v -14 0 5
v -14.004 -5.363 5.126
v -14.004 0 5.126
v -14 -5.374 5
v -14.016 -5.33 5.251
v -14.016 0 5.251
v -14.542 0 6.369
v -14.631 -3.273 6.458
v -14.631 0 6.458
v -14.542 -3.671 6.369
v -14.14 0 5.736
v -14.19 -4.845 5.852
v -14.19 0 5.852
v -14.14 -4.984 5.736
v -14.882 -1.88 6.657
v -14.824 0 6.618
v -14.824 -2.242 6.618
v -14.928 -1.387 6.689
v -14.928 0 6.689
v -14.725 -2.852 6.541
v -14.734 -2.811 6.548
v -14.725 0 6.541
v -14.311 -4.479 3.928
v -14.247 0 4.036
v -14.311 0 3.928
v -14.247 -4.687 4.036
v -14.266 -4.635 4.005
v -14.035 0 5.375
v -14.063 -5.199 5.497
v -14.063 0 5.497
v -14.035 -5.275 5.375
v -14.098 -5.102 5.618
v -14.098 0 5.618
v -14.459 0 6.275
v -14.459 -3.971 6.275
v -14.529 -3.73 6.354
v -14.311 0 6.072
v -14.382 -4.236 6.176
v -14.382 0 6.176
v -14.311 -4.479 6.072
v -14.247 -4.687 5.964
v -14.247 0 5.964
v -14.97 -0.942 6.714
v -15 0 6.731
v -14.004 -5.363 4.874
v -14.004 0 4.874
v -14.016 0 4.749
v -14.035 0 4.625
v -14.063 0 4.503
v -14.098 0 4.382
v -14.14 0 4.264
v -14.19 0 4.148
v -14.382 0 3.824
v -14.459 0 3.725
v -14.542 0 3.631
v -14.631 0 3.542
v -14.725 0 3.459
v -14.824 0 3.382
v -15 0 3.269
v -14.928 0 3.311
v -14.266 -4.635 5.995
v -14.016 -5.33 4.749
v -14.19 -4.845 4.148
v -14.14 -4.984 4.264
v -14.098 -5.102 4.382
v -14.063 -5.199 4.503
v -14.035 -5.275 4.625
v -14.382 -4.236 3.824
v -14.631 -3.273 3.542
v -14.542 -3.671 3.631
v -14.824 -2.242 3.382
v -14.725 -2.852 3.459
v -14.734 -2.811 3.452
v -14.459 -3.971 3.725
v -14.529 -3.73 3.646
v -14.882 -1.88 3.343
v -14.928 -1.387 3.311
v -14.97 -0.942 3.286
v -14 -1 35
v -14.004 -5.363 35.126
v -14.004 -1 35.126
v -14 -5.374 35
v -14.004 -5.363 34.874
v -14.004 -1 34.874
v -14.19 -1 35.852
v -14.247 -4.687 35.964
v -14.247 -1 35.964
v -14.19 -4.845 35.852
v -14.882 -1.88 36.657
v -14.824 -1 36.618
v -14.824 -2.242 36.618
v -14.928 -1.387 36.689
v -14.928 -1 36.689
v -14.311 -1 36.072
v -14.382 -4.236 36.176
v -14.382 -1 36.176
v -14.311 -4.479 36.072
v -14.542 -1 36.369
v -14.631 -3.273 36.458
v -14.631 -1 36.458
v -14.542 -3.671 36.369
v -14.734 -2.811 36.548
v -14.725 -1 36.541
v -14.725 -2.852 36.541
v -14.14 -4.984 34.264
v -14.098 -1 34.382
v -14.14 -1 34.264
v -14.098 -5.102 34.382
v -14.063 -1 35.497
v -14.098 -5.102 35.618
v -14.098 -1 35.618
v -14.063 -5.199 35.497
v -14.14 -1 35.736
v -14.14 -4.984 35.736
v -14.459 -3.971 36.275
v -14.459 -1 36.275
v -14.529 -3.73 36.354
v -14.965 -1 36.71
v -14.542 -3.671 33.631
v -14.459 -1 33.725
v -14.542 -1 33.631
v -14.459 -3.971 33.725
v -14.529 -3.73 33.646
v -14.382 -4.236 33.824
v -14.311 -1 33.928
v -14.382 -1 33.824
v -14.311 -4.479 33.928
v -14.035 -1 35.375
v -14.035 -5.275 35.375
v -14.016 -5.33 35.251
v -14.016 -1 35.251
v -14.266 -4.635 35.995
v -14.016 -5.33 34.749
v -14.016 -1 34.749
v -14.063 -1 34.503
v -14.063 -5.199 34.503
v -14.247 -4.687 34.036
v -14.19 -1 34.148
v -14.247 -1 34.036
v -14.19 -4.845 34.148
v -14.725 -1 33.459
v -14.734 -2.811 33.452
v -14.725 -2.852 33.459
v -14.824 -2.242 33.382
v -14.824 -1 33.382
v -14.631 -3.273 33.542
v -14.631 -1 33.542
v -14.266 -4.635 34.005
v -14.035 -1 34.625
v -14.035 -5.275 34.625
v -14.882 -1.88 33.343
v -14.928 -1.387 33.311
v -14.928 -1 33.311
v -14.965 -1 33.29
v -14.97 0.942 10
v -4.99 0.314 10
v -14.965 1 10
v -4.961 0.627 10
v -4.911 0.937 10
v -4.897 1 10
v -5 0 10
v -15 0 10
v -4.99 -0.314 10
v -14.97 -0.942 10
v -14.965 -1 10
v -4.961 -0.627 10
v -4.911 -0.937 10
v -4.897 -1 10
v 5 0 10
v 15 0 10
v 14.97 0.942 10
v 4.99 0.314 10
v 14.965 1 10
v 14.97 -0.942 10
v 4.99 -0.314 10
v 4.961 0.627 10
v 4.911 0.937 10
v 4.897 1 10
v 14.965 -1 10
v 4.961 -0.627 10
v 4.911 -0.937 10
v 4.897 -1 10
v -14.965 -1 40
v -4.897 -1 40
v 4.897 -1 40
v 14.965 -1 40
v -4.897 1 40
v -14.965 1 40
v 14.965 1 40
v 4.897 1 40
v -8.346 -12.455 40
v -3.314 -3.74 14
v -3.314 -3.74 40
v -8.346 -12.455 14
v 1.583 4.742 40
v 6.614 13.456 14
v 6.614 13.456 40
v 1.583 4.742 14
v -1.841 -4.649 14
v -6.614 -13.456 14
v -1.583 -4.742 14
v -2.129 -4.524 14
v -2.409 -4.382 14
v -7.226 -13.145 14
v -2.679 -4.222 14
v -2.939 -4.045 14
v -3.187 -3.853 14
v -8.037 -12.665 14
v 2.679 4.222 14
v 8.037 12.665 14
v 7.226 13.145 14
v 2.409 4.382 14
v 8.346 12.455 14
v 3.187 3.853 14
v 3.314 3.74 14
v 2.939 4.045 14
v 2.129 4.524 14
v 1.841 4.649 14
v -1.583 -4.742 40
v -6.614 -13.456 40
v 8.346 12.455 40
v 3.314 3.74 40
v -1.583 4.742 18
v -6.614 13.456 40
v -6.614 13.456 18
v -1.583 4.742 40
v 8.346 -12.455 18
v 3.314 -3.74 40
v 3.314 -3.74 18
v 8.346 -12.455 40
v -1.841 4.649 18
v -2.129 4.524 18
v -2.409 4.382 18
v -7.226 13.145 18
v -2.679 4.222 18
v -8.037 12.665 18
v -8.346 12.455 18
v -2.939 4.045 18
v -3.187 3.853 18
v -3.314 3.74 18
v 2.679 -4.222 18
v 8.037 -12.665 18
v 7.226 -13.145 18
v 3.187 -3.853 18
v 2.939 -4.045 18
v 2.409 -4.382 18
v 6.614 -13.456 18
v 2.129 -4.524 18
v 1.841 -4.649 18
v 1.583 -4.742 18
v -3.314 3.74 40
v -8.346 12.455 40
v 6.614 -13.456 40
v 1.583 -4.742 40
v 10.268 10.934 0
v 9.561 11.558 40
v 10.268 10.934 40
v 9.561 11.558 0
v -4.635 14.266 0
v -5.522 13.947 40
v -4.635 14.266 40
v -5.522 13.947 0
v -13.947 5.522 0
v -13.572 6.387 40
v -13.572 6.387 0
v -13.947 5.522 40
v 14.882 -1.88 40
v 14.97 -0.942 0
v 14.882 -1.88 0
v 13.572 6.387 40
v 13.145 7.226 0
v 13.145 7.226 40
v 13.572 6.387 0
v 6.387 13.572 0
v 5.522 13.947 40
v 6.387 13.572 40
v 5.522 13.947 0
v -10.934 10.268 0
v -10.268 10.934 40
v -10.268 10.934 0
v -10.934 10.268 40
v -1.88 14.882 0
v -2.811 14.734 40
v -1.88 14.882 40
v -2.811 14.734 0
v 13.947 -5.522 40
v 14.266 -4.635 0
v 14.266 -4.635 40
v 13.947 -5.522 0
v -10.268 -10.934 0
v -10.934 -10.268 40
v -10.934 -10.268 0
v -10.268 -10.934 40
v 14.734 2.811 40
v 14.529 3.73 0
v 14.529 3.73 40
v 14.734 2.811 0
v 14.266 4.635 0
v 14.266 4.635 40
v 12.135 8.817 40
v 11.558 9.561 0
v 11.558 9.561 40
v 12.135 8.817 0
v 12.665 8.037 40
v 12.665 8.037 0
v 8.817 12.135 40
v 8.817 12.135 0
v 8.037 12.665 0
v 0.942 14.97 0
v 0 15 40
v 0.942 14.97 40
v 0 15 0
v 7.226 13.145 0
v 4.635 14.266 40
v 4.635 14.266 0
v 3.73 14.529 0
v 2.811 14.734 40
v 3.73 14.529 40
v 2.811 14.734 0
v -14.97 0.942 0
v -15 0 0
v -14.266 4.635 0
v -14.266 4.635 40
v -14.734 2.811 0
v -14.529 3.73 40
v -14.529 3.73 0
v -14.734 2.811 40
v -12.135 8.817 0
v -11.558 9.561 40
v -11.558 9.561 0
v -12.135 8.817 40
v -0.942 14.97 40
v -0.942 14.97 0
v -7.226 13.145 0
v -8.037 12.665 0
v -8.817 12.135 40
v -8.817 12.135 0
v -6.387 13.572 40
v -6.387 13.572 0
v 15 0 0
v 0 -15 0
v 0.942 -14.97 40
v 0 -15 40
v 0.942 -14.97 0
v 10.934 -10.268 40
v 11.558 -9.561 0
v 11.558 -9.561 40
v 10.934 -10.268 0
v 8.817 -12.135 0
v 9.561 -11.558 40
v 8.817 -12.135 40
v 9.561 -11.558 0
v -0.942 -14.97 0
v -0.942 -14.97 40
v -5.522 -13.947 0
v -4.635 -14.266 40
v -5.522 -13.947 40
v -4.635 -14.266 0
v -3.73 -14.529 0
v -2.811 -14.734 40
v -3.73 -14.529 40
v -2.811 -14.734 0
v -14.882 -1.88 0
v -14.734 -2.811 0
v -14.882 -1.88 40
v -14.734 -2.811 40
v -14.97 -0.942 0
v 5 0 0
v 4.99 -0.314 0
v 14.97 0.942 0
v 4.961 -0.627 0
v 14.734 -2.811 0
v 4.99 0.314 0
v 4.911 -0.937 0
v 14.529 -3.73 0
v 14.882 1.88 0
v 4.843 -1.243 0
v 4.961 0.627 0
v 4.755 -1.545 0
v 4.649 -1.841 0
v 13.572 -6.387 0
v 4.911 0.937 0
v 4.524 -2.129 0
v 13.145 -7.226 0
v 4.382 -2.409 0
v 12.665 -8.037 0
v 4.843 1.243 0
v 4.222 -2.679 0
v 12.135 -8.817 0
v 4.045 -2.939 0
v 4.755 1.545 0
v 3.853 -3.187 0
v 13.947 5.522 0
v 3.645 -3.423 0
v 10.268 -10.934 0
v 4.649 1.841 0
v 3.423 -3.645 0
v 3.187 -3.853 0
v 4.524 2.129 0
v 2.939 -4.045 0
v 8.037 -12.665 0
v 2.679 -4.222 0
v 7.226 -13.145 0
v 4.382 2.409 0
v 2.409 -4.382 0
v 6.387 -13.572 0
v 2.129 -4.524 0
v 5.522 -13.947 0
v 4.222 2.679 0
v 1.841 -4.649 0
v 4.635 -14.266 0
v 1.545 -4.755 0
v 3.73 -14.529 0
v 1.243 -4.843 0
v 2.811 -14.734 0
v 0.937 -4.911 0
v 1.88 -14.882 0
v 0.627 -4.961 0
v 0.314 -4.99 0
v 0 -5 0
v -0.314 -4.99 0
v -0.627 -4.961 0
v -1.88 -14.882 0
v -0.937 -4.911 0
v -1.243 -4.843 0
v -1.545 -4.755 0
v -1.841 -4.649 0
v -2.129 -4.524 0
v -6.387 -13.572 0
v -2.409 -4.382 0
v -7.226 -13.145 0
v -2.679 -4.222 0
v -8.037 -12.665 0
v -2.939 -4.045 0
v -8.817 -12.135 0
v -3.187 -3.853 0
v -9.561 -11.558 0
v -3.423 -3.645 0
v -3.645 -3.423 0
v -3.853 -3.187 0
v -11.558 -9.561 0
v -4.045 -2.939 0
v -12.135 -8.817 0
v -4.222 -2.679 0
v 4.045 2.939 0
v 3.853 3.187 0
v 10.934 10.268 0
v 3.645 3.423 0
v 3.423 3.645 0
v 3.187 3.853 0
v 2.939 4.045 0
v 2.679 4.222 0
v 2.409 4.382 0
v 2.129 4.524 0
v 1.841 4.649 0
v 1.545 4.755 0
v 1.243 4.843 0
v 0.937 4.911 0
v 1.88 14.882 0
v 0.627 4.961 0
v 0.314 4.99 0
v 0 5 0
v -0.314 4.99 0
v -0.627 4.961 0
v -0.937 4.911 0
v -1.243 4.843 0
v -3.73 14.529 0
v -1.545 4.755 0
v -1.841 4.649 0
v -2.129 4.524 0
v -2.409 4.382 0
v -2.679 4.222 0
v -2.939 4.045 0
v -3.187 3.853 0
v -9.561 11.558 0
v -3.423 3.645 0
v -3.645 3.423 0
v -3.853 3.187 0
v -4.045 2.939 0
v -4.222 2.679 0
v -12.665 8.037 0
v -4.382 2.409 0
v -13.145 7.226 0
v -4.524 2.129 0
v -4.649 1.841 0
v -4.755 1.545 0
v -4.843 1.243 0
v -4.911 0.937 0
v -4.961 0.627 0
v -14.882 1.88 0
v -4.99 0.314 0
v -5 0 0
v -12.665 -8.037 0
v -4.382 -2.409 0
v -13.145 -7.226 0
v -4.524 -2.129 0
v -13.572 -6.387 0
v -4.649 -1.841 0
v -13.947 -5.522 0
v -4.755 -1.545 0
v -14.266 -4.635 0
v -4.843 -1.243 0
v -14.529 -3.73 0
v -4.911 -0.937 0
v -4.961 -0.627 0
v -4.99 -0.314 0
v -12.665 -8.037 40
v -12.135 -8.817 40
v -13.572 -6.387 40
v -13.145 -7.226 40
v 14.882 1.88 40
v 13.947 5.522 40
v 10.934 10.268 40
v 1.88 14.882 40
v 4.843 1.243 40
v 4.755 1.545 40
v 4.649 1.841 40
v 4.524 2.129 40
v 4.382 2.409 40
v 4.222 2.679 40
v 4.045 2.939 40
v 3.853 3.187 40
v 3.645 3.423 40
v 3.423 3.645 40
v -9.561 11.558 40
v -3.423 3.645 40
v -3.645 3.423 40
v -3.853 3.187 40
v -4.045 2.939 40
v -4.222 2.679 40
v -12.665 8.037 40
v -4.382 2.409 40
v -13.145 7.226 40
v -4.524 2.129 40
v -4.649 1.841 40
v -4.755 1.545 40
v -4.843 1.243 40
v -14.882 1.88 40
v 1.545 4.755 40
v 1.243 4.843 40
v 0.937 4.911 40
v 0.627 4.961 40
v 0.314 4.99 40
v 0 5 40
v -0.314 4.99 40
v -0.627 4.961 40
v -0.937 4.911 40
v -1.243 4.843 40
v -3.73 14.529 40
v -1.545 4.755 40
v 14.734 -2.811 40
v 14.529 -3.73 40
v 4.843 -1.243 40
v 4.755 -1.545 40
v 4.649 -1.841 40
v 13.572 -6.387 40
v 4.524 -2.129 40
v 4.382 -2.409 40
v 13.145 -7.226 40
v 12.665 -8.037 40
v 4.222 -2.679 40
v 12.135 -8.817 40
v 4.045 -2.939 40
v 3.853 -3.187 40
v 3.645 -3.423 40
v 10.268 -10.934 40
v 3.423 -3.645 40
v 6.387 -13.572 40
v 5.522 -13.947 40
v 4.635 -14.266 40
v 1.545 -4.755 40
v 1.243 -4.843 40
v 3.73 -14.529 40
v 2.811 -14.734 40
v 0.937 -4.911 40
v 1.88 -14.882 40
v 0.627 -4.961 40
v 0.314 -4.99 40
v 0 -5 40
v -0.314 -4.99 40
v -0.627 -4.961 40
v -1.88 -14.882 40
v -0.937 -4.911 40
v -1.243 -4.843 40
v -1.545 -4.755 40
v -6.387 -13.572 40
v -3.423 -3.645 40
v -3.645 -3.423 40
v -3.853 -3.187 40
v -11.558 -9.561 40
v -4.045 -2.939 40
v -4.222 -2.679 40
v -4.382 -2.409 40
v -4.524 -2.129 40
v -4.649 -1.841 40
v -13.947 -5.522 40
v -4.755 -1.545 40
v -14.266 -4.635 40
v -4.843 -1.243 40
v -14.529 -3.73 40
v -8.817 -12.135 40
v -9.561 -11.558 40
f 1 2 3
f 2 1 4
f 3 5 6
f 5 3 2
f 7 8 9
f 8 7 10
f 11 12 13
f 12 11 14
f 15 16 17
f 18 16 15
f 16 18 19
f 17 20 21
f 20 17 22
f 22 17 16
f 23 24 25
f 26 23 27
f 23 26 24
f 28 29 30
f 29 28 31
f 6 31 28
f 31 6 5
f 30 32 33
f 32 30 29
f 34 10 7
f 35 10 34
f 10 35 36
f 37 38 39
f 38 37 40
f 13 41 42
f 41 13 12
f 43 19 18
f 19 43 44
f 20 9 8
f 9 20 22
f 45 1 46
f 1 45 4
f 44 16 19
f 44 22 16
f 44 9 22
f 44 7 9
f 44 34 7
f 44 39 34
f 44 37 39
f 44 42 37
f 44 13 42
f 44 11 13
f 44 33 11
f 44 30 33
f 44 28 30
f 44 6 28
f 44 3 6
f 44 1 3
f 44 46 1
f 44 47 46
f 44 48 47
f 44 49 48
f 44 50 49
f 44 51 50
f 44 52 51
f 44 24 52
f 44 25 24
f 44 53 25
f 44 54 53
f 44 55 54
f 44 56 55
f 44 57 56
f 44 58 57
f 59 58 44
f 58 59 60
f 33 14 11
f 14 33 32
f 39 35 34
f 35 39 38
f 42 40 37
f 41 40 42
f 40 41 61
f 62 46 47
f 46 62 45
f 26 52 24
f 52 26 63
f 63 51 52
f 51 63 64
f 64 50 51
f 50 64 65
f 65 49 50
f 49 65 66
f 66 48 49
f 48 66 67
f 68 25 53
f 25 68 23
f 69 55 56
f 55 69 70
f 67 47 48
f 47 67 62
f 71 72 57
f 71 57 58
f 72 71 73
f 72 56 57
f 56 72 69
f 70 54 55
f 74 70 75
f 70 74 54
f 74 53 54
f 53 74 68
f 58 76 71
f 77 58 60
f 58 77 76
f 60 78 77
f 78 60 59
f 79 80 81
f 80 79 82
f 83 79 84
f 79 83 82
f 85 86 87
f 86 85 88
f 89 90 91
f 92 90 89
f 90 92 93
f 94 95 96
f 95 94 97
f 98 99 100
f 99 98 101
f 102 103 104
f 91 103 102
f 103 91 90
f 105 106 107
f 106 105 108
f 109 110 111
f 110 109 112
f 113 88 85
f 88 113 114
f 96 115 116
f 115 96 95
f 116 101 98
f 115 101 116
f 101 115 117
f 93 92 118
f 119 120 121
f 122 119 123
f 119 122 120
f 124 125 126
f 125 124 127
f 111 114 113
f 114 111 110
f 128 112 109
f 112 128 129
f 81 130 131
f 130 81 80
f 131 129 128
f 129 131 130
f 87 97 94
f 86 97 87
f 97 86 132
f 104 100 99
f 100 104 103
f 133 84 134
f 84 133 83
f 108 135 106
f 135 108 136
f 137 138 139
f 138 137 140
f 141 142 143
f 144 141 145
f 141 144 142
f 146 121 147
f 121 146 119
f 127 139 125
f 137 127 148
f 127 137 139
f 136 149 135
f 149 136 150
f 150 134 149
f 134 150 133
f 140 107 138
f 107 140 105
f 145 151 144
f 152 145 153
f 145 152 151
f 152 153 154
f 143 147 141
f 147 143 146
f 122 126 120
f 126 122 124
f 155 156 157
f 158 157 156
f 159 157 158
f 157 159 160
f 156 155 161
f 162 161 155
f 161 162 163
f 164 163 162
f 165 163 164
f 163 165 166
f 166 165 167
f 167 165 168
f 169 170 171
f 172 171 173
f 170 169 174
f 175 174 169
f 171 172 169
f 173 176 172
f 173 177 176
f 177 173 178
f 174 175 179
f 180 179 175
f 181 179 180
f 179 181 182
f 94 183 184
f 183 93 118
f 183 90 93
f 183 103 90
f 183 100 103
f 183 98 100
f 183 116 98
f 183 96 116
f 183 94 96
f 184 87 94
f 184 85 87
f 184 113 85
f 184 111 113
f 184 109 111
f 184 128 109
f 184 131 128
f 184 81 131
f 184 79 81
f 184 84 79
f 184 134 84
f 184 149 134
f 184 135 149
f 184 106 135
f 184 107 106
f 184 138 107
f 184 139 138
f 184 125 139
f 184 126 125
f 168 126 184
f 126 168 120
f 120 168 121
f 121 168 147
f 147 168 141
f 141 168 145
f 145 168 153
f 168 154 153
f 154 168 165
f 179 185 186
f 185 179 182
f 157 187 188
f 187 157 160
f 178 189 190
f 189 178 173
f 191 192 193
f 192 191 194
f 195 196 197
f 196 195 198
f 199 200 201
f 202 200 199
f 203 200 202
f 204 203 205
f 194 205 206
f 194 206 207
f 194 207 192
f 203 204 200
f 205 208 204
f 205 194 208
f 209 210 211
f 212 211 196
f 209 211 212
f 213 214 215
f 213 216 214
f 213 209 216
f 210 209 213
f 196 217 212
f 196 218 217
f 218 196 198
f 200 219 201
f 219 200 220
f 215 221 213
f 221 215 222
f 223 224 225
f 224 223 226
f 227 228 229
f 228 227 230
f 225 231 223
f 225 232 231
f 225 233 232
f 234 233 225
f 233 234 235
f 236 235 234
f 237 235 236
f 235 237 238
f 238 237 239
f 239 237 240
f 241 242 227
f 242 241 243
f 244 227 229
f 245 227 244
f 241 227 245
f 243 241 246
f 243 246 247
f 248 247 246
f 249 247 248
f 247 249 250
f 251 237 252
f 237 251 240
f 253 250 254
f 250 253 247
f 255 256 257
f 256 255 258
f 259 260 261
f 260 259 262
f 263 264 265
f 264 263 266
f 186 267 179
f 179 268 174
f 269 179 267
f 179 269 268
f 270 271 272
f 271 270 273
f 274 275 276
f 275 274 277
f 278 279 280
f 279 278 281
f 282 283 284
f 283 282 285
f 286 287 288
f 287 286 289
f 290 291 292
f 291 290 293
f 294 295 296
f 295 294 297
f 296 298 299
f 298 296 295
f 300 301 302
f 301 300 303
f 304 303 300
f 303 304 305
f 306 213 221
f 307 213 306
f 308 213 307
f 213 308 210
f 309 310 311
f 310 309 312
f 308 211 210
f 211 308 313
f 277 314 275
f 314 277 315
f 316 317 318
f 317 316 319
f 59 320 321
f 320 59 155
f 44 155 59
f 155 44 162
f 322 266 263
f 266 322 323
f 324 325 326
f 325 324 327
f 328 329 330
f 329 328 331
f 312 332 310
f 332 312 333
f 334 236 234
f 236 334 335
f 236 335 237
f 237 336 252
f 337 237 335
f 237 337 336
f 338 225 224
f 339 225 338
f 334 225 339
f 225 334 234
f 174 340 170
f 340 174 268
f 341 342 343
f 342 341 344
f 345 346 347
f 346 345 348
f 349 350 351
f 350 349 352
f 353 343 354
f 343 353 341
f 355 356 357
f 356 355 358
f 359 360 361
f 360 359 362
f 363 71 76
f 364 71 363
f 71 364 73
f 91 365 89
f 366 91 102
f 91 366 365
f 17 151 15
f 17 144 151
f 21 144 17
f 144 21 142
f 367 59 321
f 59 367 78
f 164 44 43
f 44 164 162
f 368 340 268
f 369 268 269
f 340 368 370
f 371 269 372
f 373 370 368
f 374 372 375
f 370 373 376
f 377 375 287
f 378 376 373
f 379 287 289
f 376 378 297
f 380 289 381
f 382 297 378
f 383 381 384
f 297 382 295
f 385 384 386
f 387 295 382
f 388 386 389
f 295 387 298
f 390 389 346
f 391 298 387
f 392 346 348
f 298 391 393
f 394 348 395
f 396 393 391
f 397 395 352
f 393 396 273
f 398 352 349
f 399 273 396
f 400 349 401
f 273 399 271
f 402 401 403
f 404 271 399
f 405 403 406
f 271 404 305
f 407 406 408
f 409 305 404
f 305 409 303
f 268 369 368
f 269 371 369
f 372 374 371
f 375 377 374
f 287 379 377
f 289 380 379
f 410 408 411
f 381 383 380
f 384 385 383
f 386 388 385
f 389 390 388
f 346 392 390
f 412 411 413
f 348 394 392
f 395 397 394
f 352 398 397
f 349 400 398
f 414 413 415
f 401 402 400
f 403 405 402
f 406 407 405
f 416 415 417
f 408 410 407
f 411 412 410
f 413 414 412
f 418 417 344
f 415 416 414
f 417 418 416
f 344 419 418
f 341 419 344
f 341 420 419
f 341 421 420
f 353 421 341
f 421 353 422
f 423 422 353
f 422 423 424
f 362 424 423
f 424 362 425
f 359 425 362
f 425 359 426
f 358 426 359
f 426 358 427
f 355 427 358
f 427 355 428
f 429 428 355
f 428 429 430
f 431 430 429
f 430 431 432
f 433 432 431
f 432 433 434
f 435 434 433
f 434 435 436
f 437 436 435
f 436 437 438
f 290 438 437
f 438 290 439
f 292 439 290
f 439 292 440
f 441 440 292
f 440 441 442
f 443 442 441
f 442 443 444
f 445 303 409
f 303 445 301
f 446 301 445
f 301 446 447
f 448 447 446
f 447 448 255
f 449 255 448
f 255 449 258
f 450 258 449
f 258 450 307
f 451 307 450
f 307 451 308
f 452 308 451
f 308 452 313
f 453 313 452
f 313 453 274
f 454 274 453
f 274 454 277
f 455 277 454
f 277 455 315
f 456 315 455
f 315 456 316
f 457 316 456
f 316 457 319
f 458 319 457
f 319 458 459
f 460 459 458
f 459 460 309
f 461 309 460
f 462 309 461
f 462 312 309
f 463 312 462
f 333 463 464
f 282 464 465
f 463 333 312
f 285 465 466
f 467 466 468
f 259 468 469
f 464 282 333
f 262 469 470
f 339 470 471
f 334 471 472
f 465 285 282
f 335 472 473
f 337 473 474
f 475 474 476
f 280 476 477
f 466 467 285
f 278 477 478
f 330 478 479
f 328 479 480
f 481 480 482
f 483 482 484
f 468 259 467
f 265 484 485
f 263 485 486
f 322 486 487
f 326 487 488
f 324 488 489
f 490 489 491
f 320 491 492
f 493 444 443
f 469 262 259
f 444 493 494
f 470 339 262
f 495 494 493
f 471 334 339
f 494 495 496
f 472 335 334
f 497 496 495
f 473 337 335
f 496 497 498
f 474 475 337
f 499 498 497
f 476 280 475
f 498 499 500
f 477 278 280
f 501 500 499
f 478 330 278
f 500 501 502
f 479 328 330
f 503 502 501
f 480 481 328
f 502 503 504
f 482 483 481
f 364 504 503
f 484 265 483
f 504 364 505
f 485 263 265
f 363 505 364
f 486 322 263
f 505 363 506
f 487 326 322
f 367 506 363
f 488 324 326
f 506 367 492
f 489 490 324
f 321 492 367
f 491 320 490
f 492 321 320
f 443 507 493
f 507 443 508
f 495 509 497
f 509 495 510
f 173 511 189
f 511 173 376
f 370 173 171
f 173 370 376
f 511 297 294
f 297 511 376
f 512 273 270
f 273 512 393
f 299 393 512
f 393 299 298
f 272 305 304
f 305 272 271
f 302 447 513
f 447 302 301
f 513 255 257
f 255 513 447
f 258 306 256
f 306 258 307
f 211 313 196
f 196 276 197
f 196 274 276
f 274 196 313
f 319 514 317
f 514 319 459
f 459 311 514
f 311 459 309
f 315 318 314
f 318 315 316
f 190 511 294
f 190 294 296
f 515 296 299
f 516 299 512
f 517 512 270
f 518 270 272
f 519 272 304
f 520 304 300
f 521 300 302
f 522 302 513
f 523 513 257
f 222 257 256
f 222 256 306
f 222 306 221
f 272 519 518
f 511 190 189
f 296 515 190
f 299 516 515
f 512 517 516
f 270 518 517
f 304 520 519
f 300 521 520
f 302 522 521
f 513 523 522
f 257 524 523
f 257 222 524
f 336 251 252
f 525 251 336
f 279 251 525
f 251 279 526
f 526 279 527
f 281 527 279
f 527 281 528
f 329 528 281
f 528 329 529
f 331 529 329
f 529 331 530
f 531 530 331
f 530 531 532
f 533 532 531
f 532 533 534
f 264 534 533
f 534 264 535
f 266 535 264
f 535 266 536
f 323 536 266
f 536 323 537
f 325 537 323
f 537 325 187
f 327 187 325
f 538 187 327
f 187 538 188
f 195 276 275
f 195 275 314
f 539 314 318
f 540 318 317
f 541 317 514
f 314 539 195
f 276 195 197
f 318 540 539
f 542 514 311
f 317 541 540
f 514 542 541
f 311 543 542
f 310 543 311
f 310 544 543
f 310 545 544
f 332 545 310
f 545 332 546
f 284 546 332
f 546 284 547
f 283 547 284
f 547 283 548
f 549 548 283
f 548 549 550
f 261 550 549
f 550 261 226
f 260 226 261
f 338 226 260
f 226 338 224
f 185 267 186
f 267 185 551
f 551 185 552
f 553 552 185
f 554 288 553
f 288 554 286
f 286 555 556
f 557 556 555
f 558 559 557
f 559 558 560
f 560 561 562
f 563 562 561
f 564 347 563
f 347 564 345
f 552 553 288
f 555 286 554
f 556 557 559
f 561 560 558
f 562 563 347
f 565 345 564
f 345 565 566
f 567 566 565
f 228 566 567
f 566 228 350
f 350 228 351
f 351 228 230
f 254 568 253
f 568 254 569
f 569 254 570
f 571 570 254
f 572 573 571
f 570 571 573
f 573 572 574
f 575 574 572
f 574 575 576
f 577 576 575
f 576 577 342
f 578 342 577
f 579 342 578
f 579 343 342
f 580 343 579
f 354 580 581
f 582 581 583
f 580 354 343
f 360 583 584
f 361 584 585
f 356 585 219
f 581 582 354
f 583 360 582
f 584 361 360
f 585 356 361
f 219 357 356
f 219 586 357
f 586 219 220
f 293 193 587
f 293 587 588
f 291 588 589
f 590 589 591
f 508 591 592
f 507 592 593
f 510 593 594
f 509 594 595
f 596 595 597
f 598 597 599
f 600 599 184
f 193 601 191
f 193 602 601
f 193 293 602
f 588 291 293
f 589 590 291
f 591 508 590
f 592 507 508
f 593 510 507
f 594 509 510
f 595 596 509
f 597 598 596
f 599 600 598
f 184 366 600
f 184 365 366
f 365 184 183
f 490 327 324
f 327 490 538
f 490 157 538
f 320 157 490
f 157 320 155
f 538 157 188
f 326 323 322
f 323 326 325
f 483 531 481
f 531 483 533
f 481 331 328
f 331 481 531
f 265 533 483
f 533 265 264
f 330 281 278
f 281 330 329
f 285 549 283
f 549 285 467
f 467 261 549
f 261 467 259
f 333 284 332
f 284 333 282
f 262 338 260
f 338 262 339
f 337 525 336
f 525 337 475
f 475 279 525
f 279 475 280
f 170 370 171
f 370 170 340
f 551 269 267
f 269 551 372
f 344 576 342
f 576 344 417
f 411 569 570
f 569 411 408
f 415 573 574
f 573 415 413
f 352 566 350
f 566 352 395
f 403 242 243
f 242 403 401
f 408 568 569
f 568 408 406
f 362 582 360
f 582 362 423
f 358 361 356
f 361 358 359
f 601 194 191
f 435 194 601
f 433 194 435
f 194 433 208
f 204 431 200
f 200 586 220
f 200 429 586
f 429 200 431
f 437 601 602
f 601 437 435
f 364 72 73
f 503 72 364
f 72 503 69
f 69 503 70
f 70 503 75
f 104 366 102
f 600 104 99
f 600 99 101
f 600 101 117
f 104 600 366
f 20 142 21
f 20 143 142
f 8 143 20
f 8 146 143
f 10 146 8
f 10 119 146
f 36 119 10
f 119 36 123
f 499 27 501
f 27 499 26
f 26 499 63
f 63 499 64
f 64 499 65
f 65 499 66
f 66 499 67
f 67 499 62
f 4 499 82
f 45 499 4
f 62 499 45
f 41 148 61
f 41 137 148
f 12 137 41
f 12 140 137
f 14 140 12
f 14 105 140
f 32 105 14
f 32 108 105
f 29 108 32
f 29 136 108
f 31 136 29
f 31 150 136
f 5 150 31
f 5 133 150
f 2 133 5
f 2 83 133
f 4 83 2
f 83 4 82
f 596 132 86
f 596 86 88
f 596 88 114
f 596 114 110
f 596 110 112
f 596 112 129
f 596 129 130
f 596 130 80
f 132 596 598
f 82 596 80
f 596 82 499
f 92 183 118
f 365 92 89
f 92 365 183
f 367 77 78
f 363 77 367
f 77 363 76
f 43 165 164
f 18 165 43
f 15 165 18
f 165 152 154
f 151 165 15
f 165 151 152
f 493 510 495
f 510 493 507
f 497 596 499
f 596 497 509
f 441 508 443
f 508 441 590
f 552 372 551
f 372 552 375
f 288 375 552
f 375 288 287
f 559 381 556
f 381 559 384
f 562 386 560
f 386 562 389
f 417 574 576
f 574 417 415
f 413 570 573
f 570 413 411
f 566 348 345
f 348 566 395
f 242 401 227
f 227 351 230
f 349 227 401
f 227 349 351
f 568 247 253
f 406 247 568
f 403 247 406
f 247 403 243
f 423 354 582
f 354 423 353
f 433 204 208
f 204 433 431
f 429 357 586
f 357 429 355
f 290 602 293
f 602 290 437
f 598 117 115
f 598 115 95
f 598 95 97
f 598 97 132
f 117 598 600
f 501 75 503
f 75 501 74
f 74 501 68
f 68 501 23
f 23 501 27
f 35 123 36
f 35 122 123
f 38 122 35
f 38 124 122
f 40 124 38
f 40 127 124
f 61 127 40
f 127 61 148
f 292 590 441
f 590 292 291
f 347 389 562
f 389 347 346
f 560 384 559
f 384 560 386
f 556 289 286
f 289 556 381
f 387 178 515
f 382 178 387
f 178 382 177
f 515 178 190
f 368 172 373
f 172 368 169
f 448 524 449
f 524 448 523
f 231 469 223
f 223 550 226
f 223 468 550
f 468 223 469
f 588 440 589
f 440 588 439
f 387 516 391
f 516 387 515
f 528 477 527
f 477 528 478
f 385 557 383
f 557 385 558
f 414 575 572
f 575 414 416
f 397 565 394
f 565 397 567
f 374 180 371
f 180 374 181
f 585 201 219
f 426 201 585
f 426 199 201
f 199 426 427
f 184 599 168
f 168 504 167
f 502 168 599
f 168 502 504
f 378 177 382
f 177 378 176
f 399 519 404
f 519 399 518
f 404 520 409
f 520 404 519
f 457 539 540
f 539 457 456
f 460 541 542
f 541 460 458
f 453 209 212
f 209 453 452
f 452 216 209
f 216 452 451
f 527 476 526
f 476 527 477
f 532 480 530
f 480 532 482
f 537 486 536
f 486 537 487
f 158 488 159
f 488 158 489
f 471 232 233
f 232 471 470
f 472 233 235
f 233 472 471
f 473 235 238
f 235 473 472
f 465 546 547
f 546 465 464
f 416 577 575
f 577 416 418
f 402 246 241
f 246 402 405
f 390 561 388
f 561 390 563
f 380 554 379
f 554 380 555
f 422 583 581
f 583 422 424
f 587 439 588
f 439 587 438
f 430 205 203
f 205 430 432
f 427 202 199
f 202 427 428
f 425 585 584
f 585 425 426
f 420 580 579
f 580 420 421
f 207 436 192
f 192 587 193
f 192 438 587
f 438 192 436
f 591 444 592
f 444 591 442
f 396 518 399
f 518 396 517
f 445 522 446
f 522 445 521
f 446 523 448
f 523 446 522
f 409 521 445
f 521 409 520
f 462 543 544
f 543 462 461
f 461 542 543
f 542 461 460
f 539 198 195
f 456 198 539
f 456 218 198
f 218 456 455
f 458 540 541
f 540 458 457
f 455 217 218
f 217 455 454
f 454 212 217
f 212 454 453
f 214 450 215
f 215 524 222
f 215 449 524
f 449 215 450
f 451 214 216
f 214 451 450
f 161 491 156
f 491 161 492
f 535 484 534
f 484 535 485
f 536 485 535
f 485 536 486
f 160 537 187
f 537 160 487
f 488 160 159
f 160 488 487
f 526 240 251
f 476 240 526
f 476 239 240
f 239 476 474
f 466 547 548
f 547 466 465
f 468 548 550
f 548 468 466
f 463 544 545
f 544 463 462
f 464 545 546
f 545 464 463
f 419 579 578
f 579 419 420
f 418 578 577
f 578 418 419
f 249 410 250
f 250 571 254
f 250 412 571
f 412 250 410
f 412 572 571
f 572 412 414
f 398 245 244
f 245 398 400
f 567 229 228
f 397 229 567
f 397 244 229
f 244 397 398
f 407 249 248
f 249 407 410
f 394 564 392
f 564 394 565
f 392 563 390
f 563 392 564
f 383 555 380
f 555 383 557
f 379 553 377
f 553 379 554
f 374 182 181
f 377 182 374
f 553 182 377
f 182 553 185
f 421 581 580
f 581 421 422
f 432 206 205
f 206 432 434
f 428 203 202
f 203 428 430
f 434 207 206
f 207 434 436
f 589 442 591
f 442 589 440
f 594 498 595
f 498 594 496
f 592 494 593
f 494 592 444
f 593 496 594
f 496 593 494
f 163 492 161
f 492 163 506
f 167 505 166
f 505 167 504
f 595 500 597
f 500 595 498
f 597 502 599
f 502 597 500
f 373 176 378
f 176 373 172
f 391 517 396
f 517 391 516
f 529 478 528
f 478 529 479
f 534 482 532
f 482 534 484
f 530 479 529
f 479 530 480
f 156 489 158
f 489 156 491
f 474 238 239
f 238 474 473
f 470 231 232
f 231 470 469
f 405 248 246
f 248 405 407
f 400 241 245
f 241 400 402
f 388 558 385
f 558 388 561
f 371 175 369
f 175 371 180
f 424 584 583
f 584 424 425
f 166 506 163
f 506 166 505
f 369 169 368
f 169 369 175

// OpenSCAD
$fn = 100; // Smoothness

// Parameters
coupling_diameter = 30;
coupling_length = 40;
bore_diameter = 10;
set_screw_diameter = 4;
set_screw_depth = 6;
slot_width = 2;
slot_depth = 3;
num_slots = 6;
slot_spacing = 4;

// Main body
module coupling_body() {
    difference() {
        // Outer cylinder
        cylinder(h = coupling_length, d = coupling_diameter);

        // Central bore
        translate([0, 0, -1])
            cylinder(h = coupling_length + 2, d = bore_diameter);

        // Set screw holes (2 on each end)
        for (z = [5, coupling_length - 5]) {
            rotate([90, 0, 0])
                translate([-coupling_diameter/2 - 1, z, 0])
                    cylinder(h = set_screw_depth, d = set_screw_diameter);
        }

        // Slots (simulate helical and straight cuts)
        for (i = [0:num_slots - 1]) {
            angle = i * 360 / num_slots;
            translate([0, 0, 10 + i * slot_spacing])
                rotate([0, 0, angle])
                    slot_cut();
        }
    }
}

// Slot cut module
module slot_cut() {
    translate([-coupling_diameter/2, -slot_width/2, 0])
        cube([coupling_diameter, slot_width, coupling_length/2], center = false);
}

// Render the model
coupling_body();
